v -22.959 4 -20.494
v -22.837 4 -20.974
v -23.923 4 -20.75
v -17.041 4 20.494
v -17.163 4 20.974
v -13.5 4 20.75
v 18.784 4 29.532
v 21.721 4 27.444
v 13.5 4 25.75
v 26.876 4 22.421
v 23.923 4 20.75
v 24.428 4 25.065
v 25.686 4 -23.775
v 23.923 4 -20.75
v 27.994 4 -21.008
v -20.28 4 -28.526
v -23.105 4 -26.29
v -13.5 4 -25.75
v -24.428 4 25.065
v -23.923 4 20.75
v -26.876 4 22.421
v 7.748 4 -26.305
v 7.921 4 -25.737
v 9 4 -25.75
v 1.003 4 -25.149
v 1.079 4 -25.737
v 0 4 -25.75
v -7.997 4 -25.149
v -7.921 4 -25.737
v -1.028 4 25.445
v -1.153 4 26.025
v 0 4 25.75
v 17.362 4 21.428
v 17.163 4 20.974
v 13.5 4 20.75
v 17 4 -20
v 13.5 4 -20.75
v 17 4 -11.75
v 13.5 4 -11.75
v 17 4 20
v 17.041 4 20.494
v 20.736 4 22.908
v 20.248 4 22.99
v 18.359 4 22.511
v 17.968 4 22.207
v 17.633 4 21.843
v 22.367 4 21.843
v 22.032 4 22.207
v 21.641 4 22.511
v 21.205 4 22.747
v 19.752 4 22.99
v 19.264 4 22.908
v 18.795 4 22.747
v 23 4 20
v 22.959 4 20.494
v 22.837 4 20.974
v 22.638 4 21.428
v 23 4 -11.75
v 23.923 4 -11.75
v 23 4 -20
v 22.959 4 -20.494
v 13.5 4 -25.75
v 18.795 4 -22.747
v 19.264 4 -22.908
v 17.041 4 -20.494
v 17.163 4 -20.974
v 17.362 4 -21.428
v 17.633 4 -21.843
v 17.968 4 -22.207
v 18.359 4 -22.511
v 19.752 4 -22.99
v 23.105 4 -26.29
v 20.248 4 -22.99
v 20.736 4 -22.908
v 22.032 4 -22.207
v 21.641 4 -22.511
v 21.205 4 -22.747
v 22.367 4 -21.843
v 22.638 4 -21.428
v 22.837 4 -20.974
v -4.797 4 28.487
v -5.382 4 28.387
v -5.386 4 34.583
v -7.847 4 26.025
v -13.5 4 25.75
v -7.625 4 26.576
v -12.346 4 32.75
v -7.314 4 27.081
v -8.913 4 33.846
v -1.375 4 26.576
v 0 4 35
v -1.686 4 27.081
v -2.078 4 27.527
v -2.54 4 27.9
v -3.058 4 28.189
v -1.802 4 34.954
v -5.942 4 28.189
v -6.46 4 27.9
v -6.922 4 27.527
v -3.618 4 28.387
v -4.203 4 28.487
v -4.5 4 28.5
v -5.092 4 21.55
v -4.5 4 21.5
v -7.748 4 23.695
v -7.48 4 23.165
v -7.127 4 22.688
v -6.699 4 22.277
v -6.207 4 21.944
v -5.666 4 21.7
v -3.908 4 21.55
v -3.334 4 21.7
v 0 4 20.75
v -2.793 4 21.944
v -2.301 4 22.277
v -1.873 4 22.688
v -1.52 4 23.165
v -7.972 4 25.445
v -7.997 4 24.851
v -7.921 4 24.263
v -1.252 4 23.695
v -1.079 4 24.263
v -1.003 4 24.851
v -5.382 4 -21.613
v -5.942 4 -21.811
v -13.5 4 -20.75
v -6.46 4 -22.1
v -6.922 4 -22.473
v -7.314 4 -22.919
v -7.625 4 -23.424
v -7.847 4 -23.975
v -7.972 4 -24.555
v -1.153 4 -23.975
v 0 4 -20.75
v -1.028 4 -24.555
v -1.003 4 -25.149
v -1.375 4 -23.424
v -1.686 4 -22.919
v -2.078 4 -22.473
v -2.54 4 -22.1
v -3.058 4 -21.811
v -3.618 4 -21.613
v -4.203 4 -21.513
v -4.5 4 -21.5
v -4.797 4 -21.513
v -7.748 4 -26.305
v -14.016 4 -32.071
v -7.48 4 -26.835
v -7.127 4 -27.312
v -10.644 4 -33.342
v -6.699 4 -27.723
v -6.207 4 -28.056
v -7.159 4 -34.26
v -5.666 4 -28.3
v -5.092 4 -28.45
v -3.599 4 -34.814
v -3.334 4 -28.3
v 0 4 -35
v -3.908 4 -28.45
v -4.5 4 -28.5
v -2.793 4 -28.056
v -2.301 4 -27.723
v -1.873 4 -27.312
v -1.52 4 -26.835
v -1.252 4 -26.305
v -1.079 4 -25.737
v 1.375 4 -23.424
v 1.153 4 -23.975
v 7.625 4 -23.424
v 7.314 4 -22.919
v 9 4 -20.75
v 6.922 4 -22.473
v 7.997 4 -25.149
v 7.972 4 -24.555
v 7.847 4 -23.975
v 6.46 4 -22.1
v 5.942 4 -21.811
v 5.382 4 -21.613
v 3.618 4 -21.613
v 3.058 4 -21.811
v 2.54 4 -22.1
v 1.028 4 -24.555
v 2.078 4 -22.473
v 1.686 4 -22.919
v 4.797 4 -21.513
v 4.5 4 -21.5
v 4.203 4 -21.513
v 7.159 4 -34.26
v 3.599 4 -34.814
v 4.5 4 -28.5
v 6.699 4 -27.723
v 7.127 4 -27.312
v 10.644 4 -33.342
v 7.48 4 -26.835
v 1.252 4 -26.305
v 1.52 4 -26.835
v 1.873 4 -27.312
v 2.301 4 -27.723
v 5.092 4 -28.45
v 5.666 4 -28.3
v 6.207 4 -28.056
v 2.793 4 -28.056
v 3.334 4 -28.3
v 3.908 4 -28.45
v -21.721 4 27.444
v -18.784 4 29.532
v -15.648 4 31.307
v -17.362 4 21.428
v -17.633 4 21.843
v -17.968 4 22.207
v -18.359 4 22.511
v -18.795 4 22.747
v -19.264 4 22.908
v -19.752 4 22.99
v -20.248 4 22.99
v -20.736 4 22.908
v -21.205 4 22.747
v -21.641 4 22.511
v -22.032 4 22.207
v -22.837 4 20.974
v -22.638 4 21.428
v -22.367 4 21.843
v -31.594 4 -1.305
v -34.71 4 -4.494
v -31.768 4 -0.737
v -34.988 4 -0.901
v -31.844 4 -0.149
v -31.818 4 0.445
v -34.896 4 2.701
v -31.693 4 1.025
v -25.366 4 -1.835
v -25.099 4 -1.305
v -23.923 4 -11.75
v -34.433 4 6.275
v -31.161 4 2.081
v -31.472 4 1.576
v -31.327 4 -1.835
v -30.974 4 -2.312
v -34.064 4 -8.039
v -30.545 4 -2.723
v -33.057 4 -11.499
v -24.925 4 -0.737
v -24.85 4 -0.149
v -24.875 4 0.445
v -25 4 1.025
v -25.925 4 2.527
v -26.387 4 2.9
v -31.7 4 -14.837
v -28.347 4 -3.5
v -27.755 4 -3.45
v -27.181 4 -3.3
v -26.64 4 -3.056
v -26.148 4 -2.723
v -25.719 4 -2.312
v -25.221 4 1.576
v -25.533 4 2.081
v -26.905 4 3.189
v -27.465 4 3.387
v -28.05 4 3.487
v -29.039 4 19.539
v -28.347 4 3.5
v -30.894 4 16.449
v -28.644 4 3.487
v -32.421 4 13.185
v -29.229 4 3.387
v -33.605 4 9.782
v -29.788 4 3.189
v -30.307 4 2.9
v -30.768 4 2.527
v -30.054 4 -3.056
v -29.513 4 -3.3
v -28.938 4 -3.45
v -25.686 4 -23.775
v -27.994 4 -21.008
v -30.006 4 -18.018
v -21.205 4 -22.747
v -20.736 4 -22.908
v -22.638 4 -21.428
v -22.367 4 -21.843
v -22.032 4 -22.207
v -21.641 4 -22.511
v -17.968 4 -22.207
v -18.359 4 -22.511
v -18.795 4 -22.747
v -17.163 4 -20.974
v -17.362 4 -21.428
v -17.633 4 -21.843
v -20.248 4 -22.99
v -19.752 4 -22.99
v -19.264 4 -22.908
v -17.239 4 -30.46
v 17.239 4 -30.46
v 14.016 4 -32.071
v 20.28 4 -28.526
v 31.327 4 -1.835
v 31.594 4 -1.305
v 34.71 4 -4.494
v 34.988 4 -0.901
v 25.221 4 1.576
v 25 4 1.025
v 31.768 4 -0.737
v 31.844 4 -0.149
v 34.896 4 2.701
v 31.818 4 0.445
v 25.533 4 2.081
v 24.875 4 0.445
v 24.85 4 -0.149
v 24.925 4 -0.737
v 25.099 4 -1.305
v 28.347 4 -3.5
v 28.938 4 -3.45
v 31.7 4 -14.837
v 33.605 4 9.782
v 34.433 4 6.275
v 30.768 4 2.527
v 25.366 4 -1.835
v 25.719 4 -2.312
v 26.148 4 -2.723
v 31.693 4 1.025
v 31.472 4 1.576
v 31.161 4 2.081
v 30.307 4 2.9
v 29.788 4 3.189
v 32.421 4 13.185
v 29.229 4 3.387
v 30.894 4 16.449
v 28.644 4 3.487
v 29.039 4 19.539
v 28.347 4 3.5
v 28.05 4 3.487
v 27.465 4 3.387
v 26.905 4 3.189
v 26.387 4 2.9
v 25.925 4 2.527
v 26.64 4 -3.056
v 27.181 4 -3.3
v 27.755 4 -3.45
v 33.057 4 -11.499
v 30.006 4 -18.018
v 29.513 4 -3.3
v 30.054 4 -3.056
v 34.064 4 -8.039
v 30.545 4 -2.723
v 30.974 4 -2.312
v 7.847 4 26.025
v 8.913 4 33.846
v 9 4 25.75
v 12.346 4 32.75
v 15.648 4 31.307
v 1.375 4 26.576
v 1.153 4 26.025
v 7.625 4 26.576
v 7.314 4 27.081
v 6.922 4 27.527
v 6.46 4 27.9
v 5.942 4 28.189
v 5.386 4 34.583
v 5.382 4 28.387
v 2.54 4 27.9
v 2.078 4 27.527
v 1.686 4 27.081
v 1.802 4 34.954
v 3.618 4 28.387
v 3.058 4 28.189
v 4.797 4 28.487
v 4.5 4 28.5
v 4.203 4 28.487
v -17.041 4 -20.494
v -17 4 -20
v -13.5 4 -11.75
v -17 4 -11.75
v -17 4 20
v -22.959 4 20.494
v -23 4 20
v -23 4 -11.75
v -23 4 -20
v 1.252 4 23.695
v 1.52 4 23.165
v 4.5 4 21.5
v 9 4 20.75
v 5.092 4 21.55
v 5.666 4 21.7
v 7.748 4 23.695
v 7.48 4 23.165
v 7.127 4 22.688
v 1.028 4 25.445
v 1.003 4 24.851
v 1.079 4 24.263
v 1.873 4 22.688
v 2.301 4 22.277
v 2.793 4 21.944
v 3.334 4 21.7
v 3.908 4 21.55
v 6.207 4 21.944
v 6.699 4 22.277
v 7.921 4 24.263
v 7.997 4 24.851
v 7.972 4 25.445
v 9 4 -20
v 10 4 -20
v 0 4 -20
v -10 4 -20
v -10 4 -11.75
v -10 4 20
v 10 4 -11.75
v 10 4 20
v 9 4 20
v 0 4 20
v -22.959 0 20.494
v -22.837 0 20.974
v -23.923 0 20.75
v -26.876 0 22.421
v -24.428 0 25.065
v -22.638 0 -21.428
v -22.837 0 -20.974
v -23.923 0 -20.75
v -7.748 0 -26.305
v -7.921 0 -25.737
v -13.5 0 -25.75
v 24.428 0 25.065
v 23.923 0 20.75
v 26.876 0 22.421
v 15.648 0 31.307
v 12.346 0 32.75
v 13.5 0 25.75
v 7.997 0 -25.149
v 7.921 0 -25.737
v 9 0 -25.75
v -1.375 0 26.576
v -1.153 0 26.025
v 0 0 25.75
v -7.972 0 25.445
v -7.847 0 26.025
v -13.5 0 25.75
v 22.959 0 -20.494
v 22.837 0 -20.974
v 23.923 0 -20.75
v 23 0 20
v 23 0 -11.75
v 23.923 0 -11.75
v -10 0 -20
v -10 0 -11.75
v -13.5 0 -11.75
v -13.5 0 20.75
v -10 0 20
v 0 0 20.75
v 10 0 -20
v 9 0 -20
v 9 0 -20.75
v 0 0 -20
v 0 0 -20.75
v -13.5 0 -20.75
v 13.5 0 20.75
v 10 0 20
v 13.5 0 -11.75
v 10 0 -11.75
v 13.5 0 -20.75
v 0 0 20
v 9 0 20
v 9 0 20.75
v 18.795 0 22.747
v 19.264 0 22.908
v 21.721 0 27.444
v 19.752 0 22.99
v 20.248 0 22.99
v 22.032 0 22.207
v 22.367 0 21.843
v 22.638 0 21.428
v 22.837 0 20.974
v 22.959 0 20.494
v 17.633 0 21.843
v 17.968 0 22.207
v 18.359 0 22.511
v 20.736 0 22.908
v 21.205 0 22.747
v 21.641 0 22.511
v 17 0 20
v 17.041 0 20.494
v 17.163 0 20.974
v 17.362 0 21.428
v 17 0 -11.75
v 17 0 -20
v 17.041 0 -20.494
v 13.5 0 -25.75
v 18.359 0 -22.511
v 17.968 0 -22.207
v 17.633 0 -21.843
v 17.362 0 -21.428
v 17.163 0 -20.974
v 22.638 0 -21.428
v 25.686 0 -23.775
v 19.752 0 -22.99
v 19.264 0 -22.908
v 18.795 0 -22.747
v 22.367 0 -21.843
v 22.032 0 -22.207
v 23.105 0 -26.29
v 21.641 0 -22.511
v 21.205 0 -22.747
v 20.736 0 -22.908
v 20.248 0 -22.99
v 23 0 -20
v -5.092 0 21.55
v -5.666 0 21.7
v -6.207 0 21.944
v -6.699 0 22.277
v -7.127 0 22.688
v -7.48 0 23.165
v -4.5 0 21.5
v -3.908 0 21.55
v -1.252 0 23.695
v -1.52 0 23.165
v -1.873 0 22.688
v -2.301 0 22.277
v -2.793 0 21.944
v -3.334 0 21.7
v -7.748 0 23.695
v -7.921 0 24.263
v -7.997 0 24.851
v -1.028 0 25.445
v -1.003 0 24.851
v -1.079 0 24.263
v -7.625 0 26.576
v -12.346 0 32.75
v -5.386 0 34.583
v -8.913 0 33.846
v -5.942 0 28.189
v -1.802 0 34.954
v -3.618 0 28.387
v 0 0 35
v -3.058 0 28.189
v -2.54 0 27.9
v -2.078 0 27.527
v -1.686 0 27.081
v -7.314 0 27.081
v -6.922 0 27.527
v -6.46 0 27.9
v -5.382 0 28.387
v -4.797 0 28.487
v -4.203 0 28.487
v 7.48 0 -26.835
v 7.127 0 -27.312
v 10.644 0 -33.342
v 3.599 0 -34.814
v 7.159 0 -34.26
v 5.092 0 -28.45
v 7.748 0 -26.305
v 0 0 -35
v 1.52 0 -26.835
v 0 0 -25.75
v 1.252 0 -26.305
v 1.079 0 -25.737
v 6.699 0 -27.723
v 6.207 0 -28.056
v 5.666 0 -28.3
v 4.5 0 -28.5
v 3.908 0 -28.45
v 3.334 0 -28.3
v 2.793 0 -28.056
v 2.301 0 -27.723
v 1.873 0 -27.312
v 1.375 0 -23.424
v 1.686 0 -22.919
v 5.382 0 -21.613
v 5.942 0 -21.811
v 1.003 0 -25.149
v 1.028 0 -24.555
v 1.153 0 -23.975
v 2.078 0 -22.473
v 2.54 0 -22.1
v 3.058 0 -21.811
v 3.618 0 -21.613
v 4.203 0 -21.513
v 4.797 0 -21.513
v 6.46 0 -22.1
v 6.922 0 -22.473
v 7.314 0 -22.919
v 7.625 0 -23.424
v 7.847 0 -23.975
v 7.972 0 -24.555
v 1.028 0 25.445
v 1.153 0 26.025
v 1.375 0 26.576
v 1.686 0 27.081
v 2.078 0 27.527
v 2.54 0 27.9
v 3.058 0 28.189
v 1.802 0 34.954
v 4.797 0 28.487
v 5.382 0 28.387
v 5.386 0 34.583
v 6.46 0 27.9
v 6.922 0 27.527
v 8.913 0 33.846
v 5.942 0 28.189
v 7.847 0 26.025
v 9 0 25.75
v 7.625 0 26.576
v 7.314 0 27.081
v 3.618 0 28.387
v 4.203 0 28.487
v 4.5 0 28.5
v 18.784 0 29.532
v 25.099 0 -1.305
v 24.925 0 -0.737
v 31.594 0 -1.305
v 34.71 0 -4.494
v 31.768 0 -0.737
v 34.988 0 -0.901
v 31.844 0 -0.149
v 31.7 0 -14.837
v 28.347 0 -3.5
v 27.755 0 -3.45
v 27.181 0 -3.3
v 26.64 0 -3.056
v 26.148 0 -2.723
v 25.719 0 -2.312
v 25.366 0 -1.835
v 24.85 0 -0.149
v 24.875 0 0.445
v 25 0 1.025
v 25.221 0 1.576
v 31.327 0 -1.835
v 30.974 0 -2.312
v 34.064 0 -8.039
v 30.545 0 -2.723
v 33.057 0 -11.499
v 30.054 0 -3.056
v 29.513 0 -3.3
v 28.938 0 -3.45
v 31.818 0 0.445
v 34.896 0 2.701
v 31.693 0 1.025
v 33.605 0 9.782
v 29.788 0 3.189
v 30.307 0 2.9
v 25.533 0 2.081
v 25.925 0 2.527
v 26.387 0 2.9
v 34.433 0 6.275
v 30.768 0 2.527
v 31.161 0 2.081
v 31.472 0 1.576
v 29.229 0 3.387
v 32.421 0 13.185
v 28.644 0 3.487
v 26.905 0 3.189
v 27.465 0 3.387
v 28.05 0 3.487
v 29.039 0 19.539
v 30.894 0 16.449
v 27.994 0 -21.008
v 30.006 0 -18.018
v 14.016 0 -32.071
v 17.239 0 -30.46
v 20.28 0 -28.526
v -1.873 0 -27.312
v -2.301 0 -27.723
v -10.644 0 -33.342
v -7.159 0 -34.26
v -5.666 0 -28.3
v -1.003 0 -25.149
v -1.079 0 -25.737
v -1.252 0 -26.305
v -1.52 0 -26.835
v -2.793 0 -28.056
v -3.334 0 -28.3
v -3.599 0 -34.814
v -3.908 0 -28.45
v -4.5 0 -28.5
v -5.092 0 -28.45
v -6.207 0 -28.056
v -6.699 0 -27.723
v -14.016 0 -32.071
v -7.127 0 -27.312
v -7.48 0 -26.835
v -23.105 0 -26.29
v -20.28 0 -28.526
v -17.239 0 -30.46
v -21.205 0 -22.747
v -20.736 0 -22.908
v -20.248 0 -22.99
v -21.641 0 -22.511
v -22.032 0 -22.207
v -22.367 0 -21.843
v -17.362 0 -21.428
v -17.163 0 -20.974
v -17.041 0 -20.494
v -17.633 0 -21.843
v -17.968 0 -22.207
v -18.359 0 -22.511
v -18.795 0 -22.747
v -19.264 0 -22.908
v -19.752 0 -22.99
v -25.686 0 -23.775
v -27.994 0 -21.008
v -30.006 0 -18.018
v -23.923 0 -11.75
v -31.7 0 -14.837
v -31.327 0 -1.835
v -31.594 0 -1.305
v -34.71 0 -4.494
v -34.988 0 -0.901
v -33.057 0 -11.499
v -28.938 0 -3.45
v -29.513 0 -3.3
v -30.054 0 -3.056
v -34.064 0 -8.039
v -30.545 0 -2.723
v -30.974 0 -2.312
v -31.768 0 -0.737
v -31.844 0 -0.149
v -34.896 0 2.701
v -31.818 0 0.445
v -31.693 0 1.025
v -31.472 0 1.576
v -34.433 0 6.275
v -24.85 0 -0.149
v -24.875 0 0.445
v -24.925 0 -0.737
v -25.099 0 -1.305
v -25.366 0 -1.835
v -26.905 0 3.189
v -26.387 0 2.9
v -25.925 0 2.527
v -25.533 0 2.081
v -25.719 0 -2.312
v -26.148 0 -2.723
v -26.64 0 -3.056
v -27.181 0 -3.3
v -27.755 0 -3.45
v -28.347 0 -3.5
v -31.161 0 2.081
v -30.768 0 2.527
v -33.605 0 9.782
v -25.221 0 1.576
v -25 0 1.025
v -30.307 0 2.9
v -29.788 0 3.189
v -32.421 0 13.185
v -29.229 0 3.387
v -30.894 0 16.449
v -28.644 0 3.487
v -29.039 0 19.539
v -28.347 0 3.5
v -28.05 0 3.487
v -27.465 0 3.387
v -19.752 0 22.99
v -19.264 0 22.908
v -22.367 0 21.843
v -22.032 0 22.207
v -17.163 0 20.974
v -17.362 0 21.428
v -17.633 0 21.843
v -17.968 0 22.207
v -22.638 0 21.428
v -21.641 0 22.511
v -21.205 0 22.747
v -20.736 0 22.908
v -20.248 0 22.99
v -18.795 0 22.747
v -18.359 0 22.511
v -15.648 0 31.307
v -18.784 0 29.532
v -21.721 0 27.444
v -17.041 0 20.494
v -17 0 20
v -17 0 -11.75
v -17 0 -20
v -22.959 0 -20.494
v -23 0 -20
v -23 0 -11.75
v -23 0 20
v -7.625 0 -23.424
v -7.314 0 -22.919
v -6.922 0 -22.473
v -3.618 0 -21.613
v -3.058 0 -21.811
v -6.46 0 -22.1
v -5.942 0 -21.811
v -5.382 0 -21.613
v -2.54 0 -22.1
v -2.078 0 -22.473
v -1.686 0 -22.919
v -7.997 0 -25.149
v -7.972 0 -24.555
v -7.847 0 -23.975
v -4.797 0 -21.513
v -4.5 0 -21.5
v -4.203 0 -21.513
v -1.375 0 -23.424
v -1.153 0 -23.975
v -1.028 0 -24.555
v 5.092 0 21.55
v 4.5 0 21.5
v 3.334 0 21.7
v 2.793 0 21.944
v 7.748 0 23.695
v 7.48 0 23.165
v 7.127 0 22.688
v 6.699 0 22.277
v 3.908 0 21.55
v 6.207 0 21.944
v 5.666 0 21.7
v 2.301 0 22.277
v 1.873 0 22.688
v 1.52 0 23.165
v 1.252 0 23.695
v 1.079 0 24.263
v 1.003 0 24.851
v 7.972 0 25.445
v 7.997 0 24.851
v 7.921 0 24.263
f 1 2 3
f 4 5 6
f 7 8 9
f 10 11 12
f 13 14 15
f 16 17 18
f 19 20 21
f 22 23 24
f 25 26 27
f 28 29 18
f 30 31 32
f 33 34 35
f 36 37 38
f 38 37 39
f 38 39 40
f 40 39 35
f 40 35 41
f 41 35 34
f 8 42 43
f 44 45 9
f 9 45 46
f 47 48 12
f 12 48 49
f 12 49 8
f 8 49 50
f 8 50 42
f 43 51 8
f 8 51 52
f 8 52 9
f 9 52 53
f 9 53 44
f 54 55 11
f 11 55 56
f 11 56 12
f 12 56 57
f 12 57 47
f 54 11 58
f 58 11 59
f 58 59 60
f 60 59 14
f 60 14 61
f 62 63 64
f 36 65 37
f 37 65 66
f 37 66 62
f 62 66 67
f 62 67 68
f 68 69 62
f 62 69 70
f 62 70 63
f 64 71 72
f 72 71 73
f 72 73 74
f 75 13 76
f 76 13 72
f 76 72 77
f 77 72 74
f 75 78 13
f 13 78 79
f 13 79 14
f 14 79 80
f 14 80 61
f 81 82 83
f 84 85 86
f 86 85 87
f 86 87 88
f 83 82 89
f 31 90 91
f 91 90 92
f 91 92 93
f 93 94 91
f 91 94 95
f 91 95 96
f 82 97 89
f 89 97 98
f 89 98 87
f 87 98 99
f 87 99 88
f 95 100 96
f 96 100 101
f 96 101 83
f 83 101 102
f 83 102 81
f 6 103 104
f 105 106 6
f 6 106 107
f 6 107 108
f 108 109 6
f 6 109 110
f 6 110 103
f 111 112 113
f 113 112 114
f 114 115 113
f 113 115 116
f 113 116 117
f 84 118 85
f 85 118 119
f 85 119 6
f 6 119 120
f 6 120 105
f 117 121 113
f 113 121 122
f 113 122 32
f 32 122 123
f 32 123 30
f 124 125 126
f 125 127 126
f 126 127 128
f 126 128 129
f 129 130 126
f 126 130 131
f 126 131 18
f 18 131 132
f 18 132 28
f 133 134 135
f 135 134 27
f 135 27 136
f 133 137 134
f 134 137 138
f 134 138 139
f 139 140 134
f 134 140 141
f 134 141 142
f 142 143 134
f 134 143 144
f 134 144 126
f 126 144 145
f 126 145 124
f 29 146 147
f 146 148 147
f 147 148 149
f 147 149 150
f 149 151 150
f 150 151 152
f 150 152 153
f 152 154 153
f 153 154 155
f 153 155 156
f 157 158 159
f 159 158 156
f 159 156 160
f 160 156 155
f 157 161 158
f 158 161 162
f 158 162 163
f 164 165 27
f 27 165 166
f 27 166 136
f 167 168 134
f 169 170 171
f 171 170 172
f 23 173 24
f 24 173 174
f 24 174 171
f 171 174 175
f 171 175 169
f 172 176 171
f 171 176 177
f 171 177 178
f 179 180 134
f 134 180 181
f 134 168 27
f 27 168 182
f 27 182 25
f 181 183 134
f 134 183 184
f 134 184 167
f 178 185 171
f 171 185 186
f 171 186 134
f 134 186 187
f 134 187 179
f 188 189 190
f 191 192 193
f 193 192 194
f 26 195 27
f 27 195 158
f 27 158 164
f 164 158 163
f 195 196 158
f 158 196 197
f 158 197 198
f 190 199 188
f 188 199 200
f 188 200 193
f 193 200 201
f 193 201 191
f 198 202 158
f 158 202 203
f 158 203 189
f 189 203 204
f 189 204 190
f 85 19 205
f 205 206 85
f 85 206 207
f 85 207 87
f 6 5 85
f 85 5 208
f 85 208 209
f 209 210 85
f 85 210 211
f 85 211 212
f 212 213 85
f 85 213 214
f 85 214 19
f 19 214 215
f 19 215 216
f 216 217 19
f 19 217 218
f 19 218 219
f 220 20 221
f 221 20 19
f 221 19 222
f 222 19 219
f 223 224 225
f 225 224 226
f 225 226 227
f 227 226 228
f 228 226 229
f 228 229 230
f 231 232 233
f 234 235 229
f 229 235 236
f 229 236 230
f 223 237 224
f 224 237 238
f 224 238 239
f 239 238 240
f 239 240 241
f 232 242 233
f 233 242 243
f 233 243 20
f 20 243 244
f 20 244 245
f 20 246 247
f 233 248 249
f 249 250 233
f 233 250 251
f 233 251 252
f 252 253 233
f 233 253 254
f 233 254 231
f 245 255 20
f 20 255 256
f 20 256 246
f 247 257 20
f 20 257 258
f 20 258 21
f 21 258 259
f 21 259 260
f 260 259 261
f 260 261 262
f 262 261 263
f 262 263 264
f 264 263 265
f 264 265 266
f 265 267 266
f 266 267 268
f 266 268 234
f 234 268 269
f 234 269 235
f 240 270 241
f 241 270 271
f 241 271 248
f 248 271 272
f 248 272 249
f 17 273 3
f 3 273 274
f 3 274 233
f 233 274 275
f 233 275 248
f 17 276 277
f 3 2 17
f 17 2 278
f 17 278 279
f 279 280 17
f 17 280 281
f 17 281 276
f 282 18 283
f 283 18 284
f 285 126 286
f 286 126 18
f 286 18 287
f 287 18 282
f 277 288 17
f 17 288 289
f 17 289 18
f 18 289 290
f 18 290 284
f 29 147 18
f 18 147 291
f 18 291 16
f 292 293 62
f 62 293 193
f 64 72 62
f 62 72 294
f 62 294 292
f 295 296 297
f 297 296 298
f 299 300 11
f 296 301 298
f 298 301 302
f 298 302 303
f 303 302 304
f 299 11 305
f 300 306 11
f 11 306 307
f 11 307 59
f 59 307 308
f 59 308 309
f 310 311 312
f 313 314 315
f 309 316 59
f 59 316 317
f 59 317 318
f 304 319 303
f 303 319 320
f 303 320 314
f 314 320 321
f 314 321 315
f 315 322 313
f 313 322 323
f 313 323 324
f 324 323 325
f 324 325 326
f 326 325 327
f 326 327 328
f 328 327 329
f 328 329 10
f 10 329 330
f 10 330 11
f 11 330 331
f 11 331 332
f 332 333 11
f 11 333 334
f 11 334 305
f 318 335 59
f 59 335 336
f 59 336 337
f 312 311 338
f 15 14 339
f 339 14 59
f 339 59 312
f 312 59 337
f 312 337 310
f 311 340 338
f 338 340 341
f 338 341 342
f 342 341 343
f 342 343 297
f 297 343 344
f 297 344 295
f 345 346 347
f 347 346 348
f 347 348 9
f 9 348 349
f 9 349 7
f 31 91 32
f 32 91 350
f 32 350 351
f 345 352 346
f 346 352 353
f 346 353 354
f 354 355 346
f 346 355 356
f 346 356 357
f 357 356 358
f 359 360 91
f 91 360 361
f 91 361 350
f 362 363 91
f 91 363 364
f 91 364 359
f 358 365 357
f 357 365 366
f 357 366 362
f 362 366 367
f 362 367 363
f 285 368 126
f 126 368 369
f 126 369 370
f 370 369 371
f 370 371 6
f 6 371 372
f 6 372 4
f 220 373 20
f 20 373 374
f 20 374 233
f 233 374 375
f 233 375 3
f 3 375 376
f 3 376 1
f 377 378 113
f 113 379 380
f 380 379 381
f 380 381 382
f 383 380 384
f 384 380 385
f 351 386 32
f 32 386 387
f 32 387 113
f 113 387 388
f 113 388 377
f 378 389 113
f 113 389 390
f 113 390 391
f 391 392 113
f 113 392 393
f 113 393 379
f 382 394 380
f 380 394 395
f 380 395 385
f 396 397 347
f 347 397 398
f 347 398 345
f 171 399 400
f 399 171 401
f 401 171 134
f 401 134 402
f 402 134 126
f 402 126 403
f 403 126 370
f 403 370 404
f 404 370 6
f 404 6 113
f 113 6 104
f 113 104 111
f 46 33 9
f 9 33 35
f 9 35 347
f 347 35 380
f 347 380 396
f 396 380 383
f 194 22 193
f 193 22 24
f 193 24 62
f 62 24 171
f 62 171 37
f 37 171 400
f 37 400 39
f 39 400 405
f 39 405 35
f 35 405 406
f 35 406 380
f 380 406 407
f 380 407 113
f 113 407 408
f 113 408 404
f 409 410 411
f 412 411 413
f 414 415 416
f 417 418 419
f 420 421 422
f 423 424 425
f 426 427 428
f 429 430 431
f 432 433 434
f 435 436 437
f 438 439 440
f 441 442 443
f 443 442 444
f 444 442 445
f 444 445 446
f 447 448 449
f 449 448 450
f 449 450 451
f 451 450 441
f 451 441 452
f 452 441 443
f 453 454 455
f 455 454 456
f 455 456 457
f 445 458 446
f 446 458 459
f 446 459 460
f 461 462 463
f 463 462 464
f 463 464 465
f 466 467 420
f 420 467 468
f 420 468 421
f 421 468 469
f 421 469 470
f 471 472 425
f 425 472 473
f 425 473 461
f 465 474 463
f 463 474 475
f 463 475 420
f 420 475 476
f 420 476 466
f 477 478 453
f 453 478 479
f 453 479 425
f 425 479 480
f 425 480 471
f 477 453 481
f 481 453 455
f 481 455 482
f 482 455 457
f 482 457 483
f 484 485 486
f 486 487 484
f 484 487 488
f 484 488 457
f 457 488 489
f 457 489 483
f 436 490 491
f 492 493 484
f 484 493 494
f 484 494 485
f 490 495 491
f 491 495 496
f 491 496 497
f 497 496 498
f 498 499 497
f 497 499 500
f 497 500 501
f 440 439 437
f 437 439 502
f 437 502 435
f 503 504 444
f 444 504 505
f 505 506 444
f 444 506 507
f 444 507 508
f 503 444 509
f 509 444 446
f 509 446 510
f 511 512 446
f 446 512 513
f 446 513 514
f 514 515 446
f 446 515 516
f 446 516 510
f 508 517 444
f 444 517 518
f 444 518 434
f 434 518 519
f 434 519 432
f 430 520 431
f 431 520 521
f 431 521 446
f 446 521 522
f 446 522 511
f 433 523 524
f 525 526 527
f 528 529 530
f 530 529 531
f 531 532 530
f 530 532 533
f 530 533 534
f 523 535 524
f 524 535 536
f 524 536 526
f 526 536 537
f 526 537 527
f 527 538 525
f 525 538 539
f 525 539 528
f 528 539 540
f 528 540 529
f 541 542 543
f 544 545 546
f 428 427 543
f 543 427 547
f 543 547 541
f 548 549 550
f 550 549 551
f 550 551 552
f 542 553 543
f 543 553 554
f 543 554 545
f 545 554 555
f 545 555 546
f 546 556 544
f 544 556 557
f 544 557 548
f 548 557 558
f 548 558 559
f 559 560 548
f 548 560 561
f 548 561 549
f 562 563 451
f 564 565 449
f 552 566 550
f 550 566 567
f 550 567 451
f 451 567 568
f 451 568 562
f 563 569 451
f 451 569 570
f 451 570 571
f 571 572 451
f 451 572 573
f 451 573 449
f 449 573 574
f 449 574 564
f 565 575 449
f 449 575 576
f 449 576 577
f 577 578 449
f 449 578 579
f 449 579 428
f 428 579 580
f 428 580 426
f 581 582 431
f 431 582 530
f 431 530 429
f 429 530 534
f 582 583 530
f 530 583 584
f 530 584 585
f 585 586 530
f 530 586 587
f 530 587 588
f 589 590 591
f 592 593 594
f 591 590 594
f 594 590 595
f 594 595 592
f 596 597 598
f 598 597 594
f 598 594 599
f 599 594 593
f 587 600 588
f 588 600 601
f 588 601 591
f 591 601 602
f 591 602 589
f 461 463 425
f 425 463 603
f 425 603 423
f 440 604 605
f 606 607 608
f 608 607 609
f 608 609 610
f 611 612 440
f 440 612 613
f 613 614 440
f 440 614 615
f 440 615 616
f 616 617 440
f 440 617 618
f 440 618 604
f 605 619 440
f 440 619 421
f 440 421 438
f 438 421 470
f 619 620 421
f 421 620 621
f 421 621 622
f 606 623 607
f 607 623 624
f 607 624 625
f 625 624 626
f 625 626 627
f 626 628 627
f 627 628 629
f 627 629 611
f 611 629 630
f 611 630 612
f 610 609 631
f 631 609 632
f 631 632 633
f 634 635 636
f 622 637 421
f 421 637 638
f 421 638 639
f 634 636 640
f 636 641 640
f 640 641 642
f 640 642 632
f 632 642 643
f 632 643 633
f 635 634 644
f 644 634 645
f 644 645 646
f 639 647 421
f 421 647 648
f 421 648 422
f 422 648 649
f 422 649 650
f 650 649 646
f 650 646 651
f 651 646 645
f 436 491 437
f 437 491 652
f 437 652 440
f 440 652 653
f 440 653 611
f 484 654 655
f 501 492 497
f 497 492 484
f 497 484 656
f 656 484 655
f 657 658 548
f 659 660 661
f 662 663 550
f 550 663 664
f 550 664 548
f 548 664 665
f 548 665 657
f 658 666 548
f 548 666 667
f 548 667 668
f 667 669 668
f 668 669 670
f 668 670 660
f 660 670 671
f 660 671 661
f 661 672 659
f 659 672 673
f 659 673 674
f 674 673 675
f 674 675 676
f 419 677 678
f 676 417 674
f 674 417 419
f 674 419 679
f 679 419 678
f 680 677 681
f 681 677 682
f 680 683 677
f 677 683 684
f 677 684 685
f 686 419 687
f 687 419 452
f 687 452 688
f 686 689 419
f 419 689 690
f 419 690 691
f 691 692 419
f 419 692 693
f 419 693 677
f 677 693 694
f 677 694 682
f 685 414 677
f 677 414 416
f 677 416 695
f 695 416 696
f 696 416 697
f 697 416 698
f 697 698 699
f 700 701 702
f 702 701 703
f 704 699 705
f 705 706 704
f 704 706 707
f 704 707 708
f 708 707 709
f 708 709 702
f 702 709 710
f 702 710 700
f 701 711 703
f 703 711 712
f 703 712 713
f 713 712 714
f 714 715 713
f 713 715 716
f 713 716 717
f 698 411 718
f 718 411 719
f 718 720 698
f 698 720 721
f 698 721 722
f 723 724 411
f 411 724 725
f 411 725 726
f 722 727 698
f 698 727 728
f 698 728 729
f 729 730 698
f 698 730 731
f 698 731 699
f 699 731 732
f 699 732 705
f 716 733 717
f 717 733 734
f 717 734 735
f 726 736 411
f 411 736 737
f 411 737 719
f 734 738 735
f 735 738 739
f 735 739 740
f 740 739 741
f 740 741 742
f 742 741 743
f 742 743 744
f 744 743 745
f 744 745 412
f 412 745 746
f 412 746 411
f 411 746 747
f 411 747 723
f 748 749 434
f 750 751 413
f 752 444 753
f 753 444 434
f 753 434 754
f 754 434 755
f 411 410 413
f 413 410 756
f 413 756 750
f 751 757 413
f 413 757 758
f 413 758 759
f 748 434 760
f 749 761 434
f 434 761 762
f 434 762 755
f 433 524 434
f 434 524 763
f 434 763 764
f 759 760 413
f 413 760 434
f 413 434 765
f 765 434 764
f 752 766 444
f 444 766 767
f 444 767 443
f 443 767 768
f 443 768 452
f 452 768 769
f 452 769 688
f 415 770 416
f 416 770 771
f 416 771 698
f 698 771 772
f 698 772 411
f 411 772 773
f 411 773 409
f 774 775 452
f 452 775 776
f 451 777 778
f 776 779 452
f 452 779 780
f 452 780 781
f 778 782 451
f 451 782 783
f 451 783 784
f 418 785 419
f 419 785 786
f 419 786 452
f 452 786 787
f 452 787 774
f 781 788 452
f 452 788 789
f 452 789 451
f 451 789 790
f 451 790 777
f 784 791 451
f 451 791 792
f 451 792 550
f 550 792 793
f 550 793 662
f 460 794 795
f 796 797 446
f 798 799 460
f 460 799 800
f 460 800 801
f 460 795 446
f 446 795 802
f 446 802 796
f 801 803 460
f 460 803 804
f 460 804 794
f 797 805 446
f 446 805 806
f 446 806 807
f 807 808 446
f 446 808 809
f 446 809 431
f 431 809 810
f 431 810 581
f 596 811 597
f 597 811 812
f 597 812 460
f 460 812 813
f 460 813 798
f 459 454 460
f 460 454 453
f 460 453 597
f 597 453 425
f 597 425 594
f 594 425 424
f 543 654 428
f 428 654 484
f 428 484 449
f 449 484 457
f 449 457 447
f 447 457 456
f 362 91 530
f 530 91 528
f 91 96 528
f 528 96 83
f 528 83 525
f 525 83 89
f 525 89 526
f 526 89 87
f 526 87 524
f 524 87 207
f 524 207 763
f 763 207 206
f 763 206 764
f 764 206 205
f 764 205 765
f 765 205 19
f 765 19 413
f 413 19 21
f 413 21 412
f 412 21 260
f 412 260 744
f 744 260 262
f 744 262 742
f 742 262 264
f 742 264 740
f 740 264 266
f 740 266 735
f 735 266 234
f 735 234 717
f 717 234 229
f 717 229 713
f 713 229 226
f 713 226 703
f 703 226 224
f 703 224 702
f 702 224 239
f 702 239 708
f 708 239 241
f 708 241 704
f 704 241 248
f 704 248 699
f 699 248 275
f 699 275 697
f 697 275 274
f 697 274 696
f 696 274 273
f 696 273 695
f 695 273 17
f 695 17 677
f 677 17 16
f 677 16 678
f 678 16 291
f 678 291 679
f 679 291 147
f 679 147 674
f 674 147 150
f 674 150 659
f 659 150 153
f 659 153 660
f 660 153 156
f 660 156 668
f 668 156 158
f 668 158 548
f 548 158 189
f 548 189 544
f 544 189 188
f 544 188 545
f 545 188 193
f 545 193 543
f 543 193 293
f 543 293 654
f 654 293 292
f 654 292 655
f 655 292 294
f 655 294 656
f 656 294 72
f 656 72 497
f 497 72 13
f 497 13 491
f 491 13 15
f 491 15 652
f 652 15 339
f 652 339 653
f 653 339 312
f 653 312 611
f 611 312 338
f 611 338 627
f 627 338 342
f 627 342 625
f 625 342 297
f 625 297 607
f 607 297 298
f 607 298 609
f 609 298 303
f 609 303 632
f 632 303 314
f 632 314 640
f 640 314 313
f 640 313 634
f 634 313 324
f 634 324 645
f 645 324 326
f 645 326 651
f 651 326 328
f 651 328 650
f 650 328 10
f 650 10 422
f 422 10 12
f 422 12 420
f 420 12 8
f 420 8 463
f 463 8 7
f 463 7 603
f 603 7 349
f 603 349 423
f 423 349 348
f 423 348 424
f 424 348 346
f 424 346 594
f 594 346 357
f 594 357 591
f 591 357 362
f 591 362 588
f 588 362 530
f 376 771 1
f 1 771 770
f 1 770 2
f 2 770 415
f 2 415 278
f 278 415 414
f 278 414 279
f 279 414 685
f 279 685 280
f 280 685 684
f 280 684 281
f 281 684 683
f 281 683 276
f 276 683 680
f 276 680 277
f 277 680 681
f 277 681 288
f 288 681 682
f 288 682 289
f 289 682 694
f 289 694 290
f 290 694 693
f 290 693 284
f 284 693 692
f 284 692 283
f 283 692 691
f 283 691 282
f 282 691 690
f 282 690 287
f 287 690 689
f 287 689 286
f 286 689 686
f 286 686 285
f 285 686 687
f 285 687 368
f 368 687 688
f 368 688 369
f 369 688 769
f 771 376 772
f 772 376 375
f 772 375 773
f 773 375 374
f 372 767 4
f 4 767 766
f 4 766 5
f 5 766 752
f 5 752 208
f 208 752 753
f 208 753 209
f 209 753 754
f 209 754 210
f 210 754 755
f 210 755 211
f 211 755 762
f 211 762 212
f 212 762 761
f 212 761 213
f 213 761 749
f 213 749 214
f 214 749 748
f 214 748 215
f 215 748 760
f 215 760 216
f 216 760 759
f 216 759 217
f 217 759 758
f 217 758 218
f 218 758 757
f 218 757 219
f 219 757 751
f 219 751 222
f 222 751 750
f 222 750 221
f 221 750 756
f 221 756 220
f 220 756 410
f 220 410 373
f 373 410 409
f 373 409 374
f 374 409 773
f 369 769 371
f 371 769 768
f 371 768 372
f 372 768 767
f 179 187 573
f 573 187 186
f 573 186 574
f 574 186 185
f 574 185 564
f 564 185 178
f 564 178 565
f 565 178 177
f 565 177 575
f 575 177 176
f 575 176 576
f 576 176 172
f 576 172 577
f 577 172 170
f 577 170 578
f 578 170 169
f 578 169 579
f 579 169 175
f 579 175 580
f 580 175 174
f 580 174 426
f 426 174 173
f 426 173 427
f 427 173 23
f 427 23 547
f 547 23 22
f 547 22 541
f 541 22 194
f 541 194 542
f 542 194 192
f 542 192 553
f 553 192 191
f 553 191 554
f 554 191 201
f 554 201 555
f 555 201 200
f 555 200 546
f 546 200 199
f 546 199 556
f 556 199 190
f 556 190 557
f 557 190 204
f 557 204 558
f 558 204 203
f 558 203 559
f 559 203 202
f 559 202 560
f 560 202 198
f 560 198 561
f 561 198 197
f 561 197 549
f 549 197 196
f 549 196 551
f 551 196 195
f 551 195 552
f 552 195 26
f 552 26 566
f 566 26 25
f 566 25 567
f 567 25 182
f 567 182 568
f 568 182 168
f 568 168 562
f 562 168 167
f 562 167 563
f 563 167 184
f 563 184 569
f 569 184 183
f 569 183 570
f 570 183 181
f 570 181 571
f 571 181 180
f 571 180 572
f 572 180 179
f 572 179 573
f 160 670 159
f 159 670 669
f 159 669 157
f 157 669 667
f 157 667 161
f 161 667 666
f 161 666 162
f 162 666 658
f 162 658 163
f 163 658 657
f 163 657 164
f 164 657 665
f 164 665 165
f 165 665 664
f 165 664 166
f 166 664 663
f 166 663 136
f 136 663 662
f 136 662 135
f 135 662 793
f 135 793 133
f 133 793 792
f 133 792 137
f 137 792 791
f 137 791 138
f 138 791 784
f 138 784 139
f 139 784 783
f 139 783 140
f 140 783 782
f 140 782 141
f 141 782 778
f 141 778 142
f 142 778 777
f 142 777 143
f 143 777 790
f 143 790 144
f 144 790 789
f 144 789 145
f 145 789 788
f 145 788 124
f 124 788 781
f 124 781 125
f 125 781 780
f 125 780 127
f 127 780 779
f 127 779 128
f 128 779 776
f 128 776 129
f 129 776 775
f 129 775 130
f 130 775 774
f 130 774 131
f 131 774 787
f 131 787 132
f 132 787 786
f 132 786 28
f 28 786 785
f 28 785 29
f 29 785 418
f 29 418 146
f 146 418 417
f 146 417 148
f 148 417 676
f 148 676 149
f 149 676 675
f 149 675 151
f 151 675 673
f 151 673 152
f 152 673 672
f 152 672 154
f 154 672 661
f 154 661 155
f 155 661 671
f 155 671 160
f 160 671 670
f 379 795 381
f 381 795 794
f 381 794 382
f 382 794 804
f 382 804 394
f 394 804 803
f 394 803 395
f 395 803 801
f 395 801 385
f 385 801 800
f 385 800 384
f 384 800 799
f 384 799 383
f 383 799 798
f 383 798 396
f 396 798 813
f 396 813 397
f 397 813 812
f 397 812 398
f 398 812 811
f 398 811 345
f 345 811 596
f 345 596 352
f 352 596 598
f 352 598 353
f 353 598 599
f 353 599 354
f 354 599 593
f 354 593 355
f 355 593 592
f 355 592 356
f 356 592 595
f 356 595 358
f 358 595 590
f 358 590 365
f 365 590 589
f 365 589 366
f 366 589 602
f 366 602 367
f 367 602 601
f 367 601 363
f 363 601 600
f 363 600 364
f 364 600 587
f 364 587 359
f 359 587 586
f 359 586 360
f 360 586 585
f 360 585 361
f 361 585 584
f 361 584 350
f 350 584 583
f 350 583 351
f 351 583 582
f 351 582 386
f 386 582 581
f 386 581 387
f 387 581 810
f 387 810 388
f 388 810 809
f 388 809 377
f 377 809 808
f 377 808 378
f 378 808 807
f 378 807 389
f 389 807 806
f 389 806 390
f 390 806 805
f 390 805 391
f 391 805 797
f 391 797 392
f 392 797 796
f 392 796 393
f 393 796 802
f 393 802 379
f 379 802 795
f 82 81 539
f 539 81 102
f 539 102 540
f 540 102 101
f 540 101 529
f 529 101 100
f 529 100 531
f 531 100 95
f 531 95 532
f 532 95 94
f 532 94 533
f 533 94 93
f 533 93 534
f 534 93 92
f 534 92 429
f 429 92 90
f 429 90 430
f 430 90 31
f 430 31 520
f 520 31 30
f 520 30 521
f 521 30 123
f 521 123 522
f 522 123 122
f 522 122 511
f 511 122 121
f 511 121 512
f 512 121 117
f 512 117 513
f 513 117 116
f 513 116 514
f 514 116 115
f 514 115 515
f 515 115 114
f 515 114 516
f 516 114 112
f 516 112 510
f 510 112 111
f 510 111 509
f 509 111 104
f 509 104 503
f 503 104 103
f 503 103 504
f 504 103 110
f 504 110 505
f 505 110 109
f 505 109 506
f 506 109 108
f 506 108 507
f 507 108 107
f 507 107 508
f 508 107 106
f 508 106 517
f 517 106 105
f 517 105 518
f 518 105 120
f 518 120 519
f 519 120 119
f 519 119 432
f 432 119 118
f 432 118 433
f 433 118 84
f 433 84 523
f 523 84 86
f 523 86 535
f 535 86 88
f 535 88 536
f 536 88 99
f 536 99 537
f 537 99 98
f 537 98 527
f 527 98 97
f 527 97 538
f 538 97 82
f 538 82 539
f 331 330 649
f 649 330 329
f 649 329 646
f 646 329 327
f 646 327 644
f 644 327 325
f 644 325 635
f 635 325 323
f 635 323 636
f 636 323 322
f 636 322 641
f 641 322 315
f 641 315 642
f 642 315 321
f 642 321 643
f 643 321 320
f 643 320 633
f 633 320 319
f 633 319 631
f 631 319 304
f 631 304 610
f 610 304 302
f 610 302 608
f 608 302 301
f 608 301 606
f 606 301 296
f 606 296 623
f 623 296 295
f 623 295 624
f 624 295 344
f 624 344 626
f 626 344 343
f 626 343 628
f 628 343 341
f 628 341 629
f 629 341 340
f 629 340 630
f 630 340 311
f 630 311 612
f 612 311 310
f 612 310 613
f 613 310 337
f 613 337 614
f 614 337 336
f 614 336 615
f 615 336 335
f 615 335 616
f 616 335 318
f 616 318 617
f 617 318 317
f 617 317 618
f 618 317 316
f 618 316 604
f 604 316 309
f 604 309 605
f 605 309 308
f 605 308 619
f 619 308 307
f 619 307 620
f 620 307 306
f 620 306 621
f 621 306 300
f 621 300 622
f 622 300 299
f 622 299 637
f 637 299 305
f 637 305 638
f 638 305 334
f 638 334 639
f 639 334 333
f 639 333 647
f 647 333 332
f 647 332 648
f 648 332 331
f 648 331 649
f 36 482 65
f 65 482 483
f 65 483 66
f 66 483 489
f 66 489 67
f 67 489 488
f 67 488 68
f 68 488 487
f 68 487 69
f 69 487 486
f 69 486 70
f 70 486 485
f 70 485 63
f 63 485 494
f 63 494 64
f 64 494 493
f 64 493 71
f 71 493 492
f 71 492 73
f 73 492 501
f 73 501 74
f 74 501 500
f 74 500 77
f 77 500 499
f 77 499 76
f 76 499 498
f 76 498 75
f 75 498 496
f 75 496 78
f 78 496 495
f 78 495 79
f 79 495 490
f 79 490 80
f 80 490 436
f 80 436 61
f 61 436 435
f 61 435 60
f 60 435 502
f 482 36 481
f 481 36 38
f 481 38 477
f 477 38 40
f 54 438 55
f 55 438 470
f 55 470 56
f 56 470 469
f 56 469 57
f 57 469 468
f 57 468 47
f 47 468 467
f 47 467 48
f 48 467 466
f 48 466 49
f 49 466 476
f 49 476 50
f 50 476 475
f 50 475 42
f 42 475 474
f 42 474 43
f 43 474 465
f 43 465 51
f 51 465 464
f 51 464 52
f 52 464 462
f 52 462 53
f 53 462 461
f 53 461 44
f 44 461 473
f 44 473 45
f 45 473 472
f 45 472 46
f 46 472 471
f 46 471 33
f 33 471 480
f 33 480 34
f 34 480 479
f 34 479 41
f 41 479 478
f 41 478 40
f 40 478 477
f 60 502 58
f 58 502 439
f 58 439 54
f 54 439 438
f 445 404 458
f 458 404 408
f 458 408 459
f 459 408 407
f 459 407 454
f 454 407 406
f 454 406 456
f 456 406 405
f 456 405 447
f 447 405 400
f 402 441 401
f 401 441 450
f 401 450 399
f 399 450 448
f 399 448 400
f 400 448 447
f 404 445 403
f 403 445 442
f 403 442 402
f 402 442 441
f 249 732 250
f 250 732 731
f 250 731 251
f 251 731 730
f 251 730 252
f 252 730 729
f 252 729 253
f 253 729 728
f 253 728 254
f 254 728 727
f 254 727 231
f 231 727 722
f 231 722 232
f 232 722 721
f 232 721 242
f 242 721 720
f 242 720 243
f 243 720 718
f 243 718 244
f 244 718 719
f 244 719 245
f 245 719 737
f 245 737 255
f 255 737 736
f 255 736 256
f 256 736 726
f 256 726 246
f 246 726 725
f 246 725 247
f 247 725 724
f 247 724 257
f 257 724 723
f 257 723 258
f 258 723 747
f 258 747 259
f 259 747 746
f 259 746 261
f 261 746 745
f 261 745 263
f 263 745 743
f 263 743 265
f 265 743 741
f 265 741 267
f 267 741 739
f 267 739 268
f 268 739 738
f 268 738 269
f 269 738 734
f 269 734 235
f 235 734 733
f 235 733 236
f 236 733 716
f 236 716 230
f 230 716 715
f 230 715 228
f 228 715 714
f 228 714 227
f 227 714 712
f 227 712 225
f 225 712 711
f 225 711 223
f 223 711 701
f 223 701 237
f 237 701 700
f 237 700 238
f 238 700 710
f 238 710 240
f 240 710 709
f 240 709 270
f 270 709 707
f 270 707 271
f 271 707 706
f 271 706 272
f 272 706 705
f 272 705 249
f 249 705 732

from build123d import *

# Parameters (mm, degrees)
SKETCH1_R           = 35
BOSS_EXTRUDE1_DEPTH = 4
SKETCH2_R           = 3.5
SKETCH2_W           = 20
SKETCH2_H           = 40
CUT_EXTRUDE1_DEPTH  = 5


with BuildPart() as part:
    # Sketch1 → Boss-Extrude1 (new body)
    with BuildSketch(Plane(origin=(0, 0, 0), x_dir=(1, 0, 0), z_dir=(0, 1, 0))):
        with Locations(Location((0, 0, 0), (0, 0, 270))):
            Circle(SKETCH1_R)
    extrude(amount=BOSS_EXTRUDE1_DEPTH)

    # Sketch2 → Cut-Extrude1 (cut)
    with BuildSketch(Plane(origin=(0, 0, 0), x_dir=(1, 0, 0), z_dir=(0, 1, 0))):
        with Locations(Location((-4.5, 25, 0), (0, 0, 270))):
            Circle(SKETCH2_R)
        with Locations(Location((4.5, 25, 0), (0, 0, 90))):
            Circle(SKETCH2_R)
        with Locations(Location((4.5, -25, 0), (0, 0, 270))):
            Circle(SKETCH2_R)
        with Locations(Location((-4.5, -25, 0), (0, 0, 90))):
            Circle(SKETCH2_R)
        with Locations(Location((-28.346706054, 0, 0), (0, 0, 270))):
            Circle(SKETCH2_R)
        with Locations(Location((28.346706054, 0, 0), (0, 0, 90))):
            Circle(SKETCH2_R)
        Rectangle(SKETCH2_W, SKETCH2_H)
        with BuildLine():
            Line((-17, 20), (-17, -20))
            ThreePointArc((-17, -20), (-20, -23), (-23, -20))
            Line((-23, -20), (-23, 20))
            ThreePointArc((-23, 20), (-20, 23), (-17, 20))
        make_face()
        with BuildLine():
            Line((17, 20), (17, -20))
            ThreePointArc((17, -20), (20, -23), (23, -20))
            Line((23, -20), (23, 20))
            ThreePointArc((23, 20), (20, 23), (17, 20))
        make_face()
    extrude(amount=CUT_EXTRUDE1_DEPTH, mode=Mode.SUBTRACT)


solid = part.part
